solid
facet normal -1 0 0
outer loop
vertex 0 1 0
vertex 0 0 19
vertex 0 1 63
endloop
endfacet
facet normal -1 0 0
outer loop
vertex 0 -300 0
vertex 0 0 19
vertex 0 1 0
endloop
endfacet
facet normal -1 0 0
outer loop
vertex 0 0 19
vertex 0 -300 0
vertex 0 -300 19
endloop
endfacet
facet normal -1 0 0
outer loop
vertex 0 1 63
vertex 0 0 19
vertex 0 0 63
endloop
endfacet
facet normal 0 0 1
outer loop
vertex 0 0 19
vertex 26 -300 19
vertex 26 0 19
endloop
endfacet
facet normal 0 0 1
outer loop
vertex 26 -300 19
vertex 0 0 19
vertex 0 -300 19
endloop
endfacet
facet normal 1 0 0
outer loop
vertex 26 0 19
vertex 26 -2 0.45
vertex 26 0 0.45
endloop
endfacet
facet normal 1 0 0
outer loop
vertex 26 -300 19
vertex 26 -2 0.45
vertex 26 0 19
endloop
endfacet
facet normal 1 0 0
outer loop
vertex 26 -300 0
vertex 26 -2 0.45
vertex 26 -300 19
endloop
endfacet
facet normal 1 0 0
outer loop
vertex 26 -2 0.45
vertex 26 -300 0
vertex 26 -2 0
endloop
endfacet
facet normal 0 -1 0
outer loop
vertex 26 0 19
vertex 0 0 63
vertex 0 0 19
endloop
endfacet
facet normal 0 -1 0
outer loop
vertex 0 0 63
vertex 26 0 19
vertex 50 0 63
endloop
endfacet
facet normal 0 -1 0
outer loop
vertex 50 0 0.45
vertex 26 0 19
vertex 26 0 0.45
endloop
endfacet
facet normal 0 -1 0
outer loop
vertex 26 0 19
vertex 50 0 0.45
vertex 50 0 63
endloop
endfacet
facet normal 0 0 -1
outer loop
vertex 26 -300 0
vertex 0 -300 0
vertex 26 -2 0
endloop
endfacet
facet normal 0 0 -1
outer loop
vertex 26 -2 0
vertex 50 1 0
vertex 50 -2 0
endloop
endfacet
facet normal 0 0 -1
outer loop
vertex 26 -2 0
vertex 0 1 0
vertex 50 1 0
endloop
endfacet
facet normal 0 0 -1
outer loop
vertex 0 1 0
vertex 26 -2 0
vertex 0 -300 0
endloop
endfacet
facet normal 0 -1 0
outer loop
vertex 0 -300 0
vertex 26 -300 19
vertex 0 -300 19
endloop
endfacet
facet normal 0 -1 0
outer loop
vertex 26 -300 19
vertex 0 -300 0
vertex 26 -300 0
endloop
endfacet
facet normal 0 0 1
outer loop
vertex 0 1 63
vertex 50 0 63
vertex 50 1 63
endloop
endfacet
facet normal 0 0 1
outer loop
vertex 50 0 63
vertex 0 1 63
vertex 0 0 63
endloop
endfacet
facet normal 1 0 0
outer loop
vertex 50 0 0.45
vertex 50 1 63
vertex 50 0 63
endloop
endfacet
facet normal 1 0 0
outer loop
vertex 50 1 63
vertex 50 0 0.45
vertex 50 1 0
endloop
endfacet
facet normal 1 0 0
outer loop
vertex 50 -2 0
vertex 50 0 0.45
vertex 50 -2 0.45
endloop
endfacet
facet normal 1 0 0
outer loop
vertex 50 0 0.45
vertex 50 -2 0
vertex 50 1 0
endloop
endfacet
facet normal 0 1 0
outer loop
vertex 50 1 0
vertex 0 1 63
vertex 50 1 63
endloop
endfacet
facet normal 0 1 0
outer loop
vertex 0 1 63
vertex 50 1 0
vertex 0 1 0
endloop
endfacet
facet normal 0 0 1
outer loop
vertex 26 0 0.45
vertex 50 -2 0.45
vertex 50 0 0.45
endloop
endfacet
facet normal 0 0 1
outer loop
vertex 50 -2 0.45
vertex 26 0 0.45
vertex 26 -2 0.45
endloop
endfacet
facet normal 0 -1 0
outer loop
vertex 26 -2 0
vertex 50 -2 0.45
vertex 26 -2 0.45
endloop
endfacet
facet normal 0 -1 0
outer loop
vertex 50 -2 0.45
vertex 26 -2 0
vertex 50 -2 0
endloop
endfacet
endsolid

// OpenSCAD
//shelf trim 2

x = 26;
y = 300;
z = 19;

x1 = 50;
y1 = 1;
z1 = 63;

overlap_h = 0.45;
overlap_d = 2;



translate([0, -y, 0]) cube([x, y, z]);
cube([x1, y1, z1]);
translate([0, -overlap_d, 0]) cube([x1, overlap_d, overlap_h]);
